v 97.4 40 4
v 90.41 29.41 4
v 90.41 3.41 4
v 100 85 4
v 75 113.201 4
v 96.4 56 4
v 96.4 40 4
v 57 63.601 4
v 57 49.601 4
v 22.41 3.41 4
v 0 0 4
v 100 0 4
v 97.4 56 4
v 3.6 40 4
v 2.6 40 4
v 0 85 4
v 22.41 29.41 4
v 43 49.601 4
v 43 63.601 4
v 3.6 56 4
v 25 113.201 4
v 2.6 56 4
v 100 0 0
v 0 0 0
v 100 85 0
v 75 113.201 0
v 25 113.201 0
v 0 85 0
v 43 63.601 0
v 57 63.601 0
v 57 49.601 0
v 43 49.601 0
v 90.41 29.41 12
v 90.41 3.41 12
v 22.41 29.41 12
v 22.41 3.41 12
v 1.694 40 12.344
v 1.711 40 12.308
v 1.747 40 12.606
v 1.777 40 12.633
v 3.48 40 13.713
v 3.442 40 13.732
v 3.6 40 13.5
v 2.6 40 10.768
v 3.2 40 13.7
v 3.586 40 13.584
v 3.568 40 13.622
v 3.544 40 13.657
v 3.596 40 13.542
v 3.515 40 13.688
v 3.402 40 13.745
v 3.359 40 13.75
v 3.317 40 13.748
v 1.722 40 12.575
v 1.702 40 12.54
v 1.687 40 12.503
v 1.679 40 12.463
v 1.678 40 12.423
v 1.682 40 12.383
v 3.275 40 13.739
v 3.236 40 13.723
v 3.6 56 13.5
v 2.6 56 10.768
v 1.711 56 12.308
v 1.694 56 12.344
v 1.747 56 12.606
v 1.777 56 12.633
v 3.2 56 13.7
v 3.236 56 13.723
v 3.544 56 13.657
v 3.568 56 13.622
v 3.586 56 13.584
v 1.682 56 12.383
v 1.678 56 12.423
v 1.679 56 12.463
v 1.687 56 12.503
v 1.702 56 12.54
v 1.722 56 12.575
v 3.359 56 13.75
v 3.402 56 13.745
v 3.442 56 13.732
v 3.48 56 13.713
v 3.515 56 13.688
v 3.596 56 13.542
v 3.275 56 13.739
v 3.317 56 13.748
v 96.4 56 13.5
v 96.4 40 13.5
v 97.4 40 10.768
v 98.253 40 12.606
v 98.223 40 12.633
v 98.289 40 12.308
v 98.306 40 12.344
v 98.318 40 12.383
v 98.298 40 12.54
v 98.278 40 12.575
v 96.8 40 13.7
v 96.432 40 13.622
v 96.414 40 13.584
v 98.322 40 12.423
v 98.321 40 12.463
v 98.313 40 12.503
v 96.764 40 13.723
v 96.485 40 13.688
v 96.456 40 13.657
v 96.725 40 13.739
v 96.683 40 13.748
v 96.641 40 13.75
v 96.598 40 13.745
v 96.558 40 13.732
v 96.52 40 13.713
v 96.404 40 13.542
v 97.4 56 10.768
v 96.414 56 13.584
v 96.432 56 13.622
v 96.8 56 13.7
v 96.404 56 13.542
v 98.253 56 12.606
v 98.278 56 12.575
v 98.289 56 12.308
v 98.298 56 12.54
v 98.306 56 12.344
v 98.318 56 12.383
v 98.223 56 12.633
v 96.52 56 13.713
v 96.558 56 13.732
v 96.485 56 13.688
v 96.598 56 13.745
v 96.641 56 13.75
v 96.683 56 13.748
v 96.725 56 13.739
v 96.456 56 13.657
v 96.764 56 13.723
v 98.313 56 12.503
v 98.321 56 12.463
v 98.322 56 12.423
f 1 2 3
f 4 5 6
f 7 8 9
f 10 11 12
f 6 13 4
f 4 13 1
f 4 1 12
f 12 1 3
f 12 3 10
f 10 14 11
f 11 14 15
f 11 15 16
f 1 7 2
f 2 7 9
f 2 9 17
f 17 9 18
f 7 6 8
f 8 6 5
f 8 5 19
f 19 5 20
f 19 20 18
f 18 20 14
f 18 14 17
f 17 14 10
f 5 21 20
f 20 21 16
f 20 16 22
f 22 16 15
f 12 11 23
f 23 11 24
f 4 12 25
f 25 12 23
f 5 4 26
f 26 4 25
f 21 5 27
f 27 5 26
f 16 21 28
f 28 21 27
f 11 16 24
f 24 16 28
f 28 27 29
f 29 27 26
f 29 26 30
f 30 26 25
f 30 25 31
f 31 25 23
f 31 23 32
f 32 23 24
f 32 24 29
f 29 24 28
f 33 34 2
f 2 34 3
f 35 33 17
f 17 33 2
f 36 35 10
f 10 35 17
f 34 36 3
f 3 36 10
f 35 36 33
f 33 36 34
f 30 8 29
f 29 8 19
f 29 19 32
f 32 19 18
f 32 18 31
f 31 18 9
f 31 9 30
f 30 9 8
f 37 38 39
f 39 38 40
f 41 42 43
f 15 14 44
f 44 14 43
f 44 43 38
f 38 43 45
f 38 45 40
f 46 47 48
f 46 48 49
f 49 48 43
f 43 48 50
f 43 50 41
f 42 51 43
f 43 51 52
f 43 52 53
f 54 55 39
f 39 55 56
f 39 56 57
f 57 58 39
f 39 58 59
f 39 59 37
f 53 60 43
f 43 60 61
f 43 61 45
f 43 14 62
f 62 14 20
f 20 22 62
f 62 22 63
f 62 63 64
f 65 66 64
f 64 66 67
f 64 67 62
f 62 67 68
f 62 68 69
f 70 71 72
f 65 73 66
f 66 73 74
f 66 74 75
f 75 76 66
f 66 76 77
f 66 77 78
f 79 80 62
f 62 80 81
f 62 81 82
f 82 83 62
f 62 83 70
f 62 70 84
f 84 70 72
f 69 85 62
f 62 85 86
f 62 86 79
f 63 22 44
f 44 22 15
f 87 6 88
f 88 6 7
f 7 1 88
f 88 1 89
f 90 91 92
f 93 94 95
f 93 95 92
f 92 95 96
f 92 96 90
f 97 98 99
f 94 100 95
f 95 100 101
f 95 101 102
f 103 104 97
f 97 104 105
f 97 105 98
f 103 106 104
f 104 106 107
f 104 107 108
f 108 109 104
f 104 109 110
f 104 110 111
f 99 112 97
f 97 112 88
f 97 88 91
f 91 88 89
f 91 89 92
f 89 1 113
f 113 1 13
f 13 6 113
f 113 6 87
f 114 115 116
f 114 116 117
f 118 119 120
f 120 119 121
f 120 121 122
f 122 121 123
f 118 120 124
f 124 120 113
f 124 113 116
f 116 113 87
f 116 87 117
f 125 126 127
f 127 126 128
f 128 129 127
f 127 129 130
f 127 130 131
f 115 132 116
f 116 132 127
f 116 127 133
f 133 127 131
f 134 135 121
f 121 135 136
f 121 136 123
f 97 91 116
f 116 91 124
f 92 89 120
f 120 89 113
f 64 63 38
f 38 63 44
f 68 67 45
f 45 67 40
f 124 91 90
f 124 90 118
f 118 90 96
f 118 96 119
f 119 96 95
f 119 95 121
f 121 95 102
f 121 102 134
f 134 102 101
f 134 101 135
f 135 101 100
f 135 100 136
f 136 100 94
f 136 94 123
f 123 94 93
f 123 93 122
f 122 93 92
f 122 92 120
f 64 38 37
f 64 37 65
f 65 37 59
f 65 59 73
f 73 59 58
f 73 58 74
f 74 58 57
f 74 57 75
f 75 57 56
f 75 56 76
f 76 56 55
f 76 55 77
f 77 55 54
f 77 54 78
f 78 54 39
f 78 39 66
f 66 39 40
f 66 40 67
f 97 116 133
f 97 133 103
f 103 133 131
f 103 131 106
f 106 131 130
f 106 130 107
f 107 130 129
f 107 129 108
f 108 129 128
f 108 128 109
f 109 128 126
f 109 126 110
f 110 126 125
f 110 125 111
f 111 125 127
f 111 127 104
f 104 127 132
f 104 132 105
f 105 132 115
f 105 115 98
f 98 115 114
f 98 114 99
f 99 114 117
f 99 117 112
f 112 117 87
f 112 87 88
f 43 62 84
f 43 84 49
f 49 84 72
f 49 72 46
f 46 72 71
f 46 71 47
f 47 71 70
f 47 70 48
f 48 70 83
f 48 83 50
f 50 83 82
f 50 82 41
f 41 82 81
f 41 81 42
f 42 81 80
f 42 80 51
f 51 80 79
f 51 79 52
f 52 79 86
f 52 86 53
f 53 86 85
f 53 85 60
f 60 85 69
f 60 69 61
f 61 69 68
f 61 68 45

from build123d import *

# Parameters (mm, degrees)
BOSS_EXTRU_1_DEPTH      = 4
ESQUISSE4_W             = 68
ESQUISSE4_H             = 26
BOSS_EXTRU_3_DEPTH      = 8
ESQUISSE8_W             = 14
ESQUISSE8_H             = 14
ENL_V_MAT_EXTRU_2_DEPTH = 13
ESQUISSE10_W            = 1
ESQUISSE10_H            = 16
BOSS_EXTRU_4_DEPTH      = 8.5
BOSS_EXTRU_5_DEPTH      = 16
BOSS_EXTRU_6_DEPTH      = 16
CONG_1_R                = 0.25
CONG_2_R                = 0.25


with BuildPart() as part:
    # Esquisse1 → Boss.-Extru.1 (new body)
    with BuildSketch(Plane.XY):
        Polygon((0, 0), (0, 85), (25, 113.20056997), (75, 113.20056997), (100, 85), (100, 0), align=None)
    extrude(amount=BOSS_EXTRU_1_DEPTH)

    # Esquisse4 → Boss.-Extru.3 (add)
    with BuildSketch(Plane.XY.offset(4)):
        with Locations((56.41, 16.41)):
            Rectangle(ESQUISSE4_W, ESQUISSE4_H)
    extrude(amount=BOSS_EXTRU_3_DEPTH)

    # Esquisse8 → Enlèv. mat.-Extru.2 (cut, through all)
    with BuildSketch(Plane(origin=(0, 0, 0), x_dir=(-1, 0, 0), z_dir=(0, 0, -1))):
        with Locations((-50, 56.60056997)):
            Rectangle(ESQUISSE8_W, ESQUISSE8_H)
    extrude(amount=-ENL_V_MAT_EXTRU_2_DEPTH, mode=Mode.SUBTRACT)

    # Esquisse10 → Boss.-Extru.4 (add)
    with BuildSketch(Plane.XY.offset(4)):
        with Locations((3.1, 48)):
            Rectangle(ESQUISSE10_W, ESQUISSE10_H)
        with Locations((96.9, 48)):
            Rectangle(ESQUISSE10_W, ESQUISSE10_H)
    extrude(amount=BOSS_EXTRU_4_DEPTH)

    # Esquisse13 → Boss.-Extru.5 (add)
    with BuildSketch(Plane(origin=(0, 40, 0), x_dir=(-1, 0, 0), z_dir=(0, -1, 0))):
        Polygon((-98.4, -12.5), (-97.4, -10.767949192), (-97.4, -12.5), (-96.4, -12.5), (-96.4, -14), align=None)
    extrude(amount=-BOSS_EXTRU_5_DEPTH)

    # Esquisse14 → Boss.-Extru.6 (add)
    with BuildSketch(Plane.XZ.offset(-40)):
        Polygon((1.6, 12.5), (2.6, 10.767949192), (2.6, 12.5), (3.6, 12.5), (3.6, 14), align=None)
    extrude(amount=-BOSS_EXTRU_6_DEPTH)

    # Congé1
    cong_1_edges = [part.edges().sort_by_distance(p)[0] for p in [
        (98.4, 48, 12.5),
        (1.6, 48, 12.5),
    ]]
    fillet(cong_1_edges, radius=CONG_1_R)

    # Congé2
    cong_2_edges = [part.edges().sort_by_distance(p)[0] for p in [
        (96.4, 48, 14),
        (3.6, 48, 14),
    ]]
    fillet(cong_2_edges, radius=CONG_2_R)


solid = part.part
